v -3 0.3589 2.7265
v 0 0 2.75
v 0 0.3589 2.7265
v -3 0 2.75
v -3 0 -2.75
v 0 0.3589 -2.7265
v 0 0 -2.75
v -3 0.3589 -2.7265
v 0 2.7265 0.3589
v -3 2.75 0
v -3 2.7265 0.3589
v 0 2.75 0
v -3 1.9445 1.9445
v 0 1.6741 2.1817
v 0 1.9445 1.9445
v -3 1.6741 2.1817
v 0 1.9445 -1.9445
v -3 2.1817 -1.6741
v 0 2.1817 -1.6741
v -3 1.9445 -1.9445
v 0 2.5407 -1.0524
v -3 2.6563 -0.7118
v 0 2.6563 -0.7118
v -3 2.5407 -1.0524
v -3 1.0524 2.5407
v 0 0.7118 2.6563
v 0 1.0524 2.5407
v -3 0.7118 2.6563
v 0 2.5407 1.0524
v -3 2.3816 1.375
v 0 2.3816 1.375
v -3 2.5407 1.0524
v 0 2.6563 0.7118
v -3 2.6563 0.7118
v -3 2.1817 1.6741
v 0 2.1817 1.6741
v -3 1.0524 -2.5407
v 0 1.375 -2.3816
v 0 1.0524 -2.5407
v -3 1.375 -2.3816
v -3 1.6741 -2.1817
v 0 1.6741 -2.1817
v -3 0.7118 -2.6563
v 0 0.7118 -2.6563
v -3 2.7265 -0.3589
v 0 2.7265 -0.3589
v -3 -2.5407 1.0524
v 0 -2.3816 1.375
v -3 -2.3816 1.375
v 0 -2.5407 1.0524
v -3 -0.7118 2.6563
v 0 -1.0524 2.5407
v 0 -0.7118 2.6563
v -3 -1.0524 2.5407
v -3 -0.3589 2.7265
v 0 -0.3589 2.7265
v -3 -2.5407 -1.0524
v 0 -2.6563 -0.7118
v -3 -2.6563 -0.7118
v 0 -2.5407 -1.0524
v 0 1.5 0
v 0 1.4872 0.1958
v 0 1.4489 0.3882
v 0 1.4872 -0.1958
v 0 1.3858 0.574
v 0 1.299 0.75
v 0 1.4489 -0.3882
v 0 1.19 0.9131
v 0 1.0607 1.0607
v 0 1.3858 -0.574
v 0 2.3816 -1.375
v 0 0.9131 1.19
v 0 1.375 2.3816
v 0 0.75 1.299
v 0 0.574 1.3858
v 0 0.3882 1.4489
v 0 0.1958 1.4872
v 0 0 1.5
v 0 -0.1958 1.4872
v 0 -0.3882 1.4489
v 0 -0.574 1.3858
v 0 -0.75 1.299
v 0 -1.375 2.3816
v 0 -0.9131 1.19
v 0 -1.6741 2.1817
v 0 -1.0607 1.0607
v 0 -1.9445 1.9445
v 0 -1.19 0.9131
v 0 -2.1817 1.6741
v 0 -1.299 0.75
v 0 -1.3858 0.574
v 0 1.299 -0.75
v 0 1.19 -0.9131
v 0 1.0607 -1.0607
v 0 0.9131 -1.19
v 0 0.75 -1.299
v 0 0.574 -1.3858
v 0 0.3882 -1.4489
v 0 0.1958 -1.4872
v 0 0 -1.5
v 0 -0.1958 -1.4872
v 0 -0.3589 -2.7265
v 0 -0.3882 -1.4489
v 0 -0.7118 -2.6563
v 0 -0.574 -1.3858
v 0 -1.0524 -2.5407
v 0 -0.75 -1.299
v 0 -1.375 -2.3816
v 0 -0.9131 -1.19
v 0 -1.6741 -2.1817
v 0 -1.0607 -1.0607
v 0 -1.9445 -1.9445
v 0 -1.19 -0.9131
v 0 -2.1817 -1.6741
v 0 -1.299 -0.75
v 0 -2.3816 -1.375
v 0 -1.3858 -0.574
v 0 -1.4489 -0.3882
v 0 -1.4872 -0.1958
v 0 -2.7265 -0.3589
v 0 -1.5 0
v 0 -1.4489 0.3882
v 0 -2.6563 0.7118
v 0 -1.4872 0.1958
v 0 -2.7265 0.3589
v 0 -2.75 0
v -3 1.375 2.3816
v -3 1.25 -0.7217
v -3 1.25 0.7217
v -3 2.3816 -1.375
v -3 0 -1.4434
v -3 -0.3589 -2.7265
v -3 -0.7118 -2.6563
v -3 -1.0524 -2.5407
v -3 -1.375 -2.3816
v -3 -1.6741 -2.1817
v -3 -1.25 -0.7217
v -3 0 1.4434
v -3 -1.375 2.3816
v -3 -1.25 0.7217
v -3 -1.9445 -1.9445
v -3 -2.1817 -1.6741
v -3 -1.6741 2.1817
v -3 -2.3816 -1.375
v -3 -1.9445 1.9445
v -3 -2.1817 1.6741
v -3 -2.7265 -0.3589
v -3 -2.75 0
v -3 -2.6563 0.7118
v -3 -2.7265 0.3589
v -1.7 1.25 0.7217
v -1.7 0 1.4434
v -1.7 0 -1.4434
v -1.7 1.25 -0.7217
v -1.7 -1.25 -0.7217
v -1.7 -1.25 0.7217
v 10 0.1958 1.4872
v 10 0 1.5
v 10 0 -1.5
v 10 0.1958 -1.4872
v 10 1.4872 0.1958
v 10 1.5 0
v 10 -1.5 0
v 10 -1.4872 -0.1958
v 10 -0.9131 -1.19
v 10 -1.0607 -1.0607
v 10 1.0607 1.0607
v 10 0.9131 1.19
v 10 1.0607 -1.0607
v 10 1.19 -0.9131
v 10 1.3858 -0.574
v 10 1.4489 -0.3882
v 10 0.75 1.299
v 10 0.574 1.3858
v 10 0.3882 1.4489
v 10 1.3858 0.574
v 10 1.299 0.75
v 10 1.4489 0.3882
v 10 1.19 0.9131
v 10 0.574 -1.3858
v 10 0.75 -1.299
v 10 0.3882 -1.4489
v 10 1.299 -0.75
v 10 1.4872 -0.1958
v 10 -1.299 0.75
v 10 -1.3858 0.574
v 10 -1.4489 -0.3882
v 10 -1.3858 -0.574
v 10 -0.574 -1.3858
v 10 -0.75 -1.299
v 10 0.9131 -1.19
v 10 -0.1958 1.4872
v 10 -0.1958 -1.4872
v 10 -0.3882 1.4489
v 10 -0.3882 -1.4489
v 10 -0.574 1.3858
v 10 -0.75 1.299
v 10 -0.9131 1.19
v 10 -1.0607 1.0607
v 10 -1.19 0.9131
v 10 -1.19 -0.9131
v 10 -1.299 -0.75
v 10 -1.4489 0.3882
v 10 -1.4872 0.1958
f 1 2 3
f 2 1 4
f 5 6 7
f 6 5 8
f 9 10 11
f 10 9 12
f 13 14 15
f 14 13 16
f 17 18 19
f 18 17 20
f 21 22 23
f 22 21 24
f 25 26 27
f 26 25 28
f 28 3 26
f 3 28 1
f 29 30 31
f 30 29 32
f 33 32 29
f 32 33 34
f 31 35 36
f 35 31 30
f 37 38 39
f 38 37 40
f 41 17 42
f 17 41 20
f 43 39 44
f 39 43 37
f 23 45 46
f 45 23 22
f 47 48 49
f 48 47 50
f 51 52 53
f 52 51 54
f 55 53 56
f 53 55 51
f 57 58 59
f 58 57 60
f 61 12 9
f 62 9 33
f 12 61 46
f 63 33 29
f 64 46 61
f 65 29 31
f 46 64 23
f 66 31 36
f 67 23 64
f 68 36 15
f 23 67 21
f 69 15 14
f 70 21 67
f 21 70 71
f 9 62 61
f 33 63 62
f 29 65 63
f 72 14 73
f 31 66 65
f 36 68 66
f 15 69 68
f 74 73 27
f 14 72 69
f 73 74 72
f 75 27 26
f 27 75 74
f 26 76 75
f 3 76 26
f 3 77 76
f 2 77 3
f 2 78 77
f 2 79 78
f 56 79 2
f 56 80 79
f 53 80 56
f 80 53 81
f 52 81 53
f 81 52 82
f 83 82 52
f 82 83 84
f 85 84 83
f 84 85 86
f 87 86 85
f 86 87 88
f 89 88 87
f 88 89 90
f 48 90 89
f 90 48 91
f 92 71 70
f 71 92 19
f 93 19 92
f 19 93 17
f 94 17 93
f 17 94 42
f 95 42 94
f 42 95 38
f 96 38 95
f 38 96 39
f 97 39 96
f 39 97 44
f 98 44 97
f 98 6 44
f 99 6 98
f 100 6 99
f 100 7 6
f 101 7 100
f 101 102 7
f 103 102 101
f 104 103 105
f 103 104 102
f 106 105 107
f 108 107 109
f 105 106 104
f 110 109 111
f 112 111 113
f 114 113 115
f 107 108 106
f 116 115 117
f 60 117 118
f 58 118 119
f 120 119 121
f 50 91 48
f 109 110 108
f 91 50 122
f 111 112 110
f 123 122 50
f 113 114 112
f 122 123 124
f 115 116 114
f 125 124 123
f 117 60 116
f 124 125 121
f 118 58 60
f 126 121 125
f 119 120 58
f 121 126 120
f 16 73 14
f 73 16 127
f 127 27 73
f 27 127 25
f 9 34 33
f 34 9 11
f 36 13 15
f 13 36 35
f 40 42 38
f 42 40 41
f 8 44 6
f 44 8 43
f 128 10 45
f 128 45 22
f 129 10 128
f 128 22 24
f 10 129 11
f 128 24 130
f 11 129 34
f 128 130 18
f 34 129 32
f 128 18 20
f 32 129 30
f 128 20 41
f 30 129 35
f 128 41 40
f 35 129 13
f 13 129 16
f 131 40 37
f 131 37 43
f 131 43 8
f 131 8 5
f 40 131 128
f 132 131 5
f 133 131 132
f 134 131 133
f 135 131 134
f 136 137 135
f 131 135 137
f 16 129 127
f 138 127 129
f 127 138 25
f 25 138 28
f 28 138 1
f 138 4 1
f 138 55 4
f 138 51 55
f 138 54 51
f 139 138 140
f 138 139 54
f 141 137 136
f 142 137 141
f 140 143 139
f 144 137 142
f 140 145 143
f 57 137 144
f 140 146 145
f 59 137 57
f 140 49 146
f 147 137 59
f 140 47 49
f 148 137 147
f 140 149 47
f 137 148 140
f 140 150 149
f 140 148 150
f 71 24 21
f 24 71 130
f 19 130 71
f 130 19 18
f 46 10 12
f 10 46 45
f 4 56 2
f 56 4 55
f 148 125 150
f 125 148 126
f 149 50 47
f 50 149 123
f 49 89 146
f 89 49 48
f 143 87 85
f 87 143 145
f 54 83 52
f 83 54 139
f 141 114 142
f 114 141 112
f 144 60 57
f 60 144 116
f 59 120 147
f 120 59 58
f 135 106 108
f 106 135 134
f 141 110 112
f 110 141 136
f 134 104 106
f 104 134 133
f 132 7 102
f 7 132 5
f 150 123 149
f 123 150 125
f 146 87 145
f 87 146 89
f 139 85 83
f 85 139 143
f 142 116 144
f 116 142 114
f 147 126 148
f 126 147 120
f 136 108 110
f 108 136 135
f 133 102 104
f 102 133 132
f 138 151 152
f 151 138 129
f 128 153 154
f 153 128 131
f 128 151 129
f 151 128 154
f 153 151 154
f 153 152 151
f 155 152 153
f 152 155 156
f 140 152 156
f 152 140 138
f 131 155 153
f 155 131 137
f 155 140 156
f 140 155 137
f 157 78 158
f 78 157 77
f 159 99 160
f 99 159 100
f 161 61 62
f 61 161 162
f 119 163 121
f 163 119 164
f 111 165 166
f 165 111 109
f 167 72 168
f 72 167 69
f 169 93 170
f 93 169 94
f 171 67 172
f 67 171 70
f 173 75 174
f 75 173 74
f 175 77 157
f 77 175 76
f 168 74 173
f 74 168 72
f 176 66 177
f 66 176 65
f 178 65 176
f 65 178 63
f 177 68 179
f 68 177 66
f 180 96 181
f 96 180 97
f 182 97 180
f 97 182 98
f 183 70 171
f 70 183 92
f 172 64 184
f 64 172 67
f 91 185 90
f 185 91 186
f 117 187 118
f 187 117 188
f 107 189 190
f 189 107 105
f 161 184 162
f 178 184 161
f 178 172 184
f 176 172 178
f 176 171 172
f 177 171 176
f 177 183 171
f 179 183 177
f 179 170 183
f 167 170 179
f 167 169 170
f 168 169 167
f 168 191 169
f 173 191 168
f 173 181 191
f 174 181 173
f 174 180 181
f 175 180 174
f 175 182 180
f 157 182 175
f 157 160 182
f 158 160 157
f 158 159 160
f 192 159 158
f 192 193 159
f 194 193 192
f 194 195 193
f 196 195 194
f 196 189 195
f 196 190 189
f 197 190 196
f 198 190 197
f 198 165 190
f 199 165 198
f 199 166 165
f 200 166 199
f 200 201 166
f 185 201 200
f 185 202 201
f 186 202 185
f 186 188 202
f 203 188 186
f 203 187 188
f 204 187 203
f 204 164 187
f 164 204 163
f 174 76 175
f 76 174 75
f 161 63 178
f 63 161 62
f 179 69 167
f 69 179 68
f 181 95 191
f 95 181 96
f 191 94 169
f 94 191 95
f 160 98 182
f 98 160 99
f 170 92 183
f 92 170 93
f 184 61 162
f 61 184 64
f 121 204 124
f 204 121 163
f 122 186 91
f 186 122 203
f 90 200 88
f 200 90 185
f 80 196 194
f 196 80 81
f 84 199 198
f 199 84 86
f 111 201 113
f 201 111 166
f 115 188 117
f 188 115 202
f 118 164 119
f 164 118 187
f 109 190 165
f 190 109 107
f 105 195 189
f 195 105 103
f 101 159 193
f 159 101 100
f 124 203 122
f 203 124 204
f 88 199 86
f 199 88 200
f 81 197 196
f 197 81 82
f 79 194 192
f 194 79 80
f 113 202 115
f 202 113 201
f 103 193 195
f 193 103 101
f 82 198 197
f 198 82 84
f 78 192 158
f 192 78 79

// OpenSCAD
// file: ../../lib/nutsnbolts/data-access.scad
// Norm Nuts and Bolts - a OpenSCAD library
// Copyright (C) 2012  Johannes Kneer

// This program is free software: you can redistribute it and/or modify
// it under the terms of the GNU General Public License as published by
// the Free Software Foundation, either version 3 of the License, or
// (at your option) any later version.

// This program is distributed in the hope that it will be useful,
// but WITHOUT ANY WARRANTY; without even the implied warranty of
// MERCHANTABILITY or FITNESS FOR A PARTICULAR PURPOSE.  See the
// GNU General Public License for more details.

// You should have received a copy of the GNU General Public License
// along with this program.  If not, see <http://www.gnu.org/licenses/>.


// DATABASE ACCESS FUNCTIONS AND CONSTANTS



// == CONSTANTS ==

// screw table access keys
_NB_S_DESC            = 0;
_NB_S_FAMKEY			    = 1;
_NB_S_LENGTH          = 2;
_NB_S_NOTHREAD_LENGTH = 3;

_NB_F_DESC			      = 0;
_NB_F_OUTER_DIA       = 1;
_NB_F_INNER_DIA       = 2;
_NB_F_LEAD            = 3;
_NB_F_KEY             = 4;
_NB_F_KEY_DEPTH       = 5;
_NB_F_HEAD_HEIGHT     = 6;
_NB_F_HEAD_DIA        = 7;
_NB_F_NUT_KEY         = 8;
_NB_F_NUT_HEIGHT      = 9;
_NB_F_PITCH_FINE      = 10;
_NB_F_PITCH_MEDIUM    = 11;
_NB_F_PITCH_COARSE    = 12;


// == FUNCTIONS ==

// _get_screw("descriptor")   with descriptor = M8x25
//   find the line for a general object in the data matrix

function _get_screw(n) = data_screw[search([n], data_screw)[0]];
function _get_screw_fam(n) = data_screw_fam[search([_get_screw(n)[_NB_S_FAMKEY]], data_screw_fam)[0]];

function _get_fam(n) = data_screw_fam[search([n], data_screw_fam)[0]];


// _get_XXXXX("descriptor") functions
// find a single property in the database

function _get_desc(n)        = _get_screw(n)[_NB_S_DESC];
function _get_famkey(n)         = _get_screw(n)[_NB_S_FAMKEY];
function _get_length(n)      = _get_screw(n)[_NB_S_LENGTH];
function _get_nt_length(n)   = _get_screw(n)[_NB_S_NOTHREAD_LENGTH];

function _get_outer_dia(n)   = _get_screw_fam(n)[_NB_F_OUTER_DIA];
function _get_inner_dia(n)   = _get_screw_fam(n)[_NB_F_INNER_DIA];
function _get_lead(n)        = _get_screw_fam(n)[_NB_F_LEAD];
function _get_head_height(n) = _get_screw_fam(n)[_NB_F_HEAD_HEIGHT];
function _get_head_dia(n)    = _get_screw_fam(n)[_NB_F_HEAD_DIA];
function _get_nut_key(n)     = _get_screw_fam(n)[_NB_F_NUT_KEY];
function _get_nut_height(n)  = _get_screw_fam(n)[_NB_F_NUT_HEIGHT];
function _get_fine_pitch(n)  = _get_screw_fam(n)[_NB_F_PITCH_FINE];
function _get_medium_pitch(n)  = _get_screw_fam(n)[_NB_F_PITCH_MEDIUM];
function _get_coarse_pitch(n)  = _get_screw_fam(n)[_NB_F_PITCH_COARSE];
// main file
/**********************************************************************************************************************
 **
 ** parts/vitamins/screw_M3x10.scad
 **
 ** This file renders a screw of the dimensions specified by the file name.
 **
 **********************************************************************************************************************/

include <../../lib/nutsnbolts/cyl_head_bolt.scad>;

$fn = 48;
rotate([0, -90, 0])
	screw("M3x10"); 
